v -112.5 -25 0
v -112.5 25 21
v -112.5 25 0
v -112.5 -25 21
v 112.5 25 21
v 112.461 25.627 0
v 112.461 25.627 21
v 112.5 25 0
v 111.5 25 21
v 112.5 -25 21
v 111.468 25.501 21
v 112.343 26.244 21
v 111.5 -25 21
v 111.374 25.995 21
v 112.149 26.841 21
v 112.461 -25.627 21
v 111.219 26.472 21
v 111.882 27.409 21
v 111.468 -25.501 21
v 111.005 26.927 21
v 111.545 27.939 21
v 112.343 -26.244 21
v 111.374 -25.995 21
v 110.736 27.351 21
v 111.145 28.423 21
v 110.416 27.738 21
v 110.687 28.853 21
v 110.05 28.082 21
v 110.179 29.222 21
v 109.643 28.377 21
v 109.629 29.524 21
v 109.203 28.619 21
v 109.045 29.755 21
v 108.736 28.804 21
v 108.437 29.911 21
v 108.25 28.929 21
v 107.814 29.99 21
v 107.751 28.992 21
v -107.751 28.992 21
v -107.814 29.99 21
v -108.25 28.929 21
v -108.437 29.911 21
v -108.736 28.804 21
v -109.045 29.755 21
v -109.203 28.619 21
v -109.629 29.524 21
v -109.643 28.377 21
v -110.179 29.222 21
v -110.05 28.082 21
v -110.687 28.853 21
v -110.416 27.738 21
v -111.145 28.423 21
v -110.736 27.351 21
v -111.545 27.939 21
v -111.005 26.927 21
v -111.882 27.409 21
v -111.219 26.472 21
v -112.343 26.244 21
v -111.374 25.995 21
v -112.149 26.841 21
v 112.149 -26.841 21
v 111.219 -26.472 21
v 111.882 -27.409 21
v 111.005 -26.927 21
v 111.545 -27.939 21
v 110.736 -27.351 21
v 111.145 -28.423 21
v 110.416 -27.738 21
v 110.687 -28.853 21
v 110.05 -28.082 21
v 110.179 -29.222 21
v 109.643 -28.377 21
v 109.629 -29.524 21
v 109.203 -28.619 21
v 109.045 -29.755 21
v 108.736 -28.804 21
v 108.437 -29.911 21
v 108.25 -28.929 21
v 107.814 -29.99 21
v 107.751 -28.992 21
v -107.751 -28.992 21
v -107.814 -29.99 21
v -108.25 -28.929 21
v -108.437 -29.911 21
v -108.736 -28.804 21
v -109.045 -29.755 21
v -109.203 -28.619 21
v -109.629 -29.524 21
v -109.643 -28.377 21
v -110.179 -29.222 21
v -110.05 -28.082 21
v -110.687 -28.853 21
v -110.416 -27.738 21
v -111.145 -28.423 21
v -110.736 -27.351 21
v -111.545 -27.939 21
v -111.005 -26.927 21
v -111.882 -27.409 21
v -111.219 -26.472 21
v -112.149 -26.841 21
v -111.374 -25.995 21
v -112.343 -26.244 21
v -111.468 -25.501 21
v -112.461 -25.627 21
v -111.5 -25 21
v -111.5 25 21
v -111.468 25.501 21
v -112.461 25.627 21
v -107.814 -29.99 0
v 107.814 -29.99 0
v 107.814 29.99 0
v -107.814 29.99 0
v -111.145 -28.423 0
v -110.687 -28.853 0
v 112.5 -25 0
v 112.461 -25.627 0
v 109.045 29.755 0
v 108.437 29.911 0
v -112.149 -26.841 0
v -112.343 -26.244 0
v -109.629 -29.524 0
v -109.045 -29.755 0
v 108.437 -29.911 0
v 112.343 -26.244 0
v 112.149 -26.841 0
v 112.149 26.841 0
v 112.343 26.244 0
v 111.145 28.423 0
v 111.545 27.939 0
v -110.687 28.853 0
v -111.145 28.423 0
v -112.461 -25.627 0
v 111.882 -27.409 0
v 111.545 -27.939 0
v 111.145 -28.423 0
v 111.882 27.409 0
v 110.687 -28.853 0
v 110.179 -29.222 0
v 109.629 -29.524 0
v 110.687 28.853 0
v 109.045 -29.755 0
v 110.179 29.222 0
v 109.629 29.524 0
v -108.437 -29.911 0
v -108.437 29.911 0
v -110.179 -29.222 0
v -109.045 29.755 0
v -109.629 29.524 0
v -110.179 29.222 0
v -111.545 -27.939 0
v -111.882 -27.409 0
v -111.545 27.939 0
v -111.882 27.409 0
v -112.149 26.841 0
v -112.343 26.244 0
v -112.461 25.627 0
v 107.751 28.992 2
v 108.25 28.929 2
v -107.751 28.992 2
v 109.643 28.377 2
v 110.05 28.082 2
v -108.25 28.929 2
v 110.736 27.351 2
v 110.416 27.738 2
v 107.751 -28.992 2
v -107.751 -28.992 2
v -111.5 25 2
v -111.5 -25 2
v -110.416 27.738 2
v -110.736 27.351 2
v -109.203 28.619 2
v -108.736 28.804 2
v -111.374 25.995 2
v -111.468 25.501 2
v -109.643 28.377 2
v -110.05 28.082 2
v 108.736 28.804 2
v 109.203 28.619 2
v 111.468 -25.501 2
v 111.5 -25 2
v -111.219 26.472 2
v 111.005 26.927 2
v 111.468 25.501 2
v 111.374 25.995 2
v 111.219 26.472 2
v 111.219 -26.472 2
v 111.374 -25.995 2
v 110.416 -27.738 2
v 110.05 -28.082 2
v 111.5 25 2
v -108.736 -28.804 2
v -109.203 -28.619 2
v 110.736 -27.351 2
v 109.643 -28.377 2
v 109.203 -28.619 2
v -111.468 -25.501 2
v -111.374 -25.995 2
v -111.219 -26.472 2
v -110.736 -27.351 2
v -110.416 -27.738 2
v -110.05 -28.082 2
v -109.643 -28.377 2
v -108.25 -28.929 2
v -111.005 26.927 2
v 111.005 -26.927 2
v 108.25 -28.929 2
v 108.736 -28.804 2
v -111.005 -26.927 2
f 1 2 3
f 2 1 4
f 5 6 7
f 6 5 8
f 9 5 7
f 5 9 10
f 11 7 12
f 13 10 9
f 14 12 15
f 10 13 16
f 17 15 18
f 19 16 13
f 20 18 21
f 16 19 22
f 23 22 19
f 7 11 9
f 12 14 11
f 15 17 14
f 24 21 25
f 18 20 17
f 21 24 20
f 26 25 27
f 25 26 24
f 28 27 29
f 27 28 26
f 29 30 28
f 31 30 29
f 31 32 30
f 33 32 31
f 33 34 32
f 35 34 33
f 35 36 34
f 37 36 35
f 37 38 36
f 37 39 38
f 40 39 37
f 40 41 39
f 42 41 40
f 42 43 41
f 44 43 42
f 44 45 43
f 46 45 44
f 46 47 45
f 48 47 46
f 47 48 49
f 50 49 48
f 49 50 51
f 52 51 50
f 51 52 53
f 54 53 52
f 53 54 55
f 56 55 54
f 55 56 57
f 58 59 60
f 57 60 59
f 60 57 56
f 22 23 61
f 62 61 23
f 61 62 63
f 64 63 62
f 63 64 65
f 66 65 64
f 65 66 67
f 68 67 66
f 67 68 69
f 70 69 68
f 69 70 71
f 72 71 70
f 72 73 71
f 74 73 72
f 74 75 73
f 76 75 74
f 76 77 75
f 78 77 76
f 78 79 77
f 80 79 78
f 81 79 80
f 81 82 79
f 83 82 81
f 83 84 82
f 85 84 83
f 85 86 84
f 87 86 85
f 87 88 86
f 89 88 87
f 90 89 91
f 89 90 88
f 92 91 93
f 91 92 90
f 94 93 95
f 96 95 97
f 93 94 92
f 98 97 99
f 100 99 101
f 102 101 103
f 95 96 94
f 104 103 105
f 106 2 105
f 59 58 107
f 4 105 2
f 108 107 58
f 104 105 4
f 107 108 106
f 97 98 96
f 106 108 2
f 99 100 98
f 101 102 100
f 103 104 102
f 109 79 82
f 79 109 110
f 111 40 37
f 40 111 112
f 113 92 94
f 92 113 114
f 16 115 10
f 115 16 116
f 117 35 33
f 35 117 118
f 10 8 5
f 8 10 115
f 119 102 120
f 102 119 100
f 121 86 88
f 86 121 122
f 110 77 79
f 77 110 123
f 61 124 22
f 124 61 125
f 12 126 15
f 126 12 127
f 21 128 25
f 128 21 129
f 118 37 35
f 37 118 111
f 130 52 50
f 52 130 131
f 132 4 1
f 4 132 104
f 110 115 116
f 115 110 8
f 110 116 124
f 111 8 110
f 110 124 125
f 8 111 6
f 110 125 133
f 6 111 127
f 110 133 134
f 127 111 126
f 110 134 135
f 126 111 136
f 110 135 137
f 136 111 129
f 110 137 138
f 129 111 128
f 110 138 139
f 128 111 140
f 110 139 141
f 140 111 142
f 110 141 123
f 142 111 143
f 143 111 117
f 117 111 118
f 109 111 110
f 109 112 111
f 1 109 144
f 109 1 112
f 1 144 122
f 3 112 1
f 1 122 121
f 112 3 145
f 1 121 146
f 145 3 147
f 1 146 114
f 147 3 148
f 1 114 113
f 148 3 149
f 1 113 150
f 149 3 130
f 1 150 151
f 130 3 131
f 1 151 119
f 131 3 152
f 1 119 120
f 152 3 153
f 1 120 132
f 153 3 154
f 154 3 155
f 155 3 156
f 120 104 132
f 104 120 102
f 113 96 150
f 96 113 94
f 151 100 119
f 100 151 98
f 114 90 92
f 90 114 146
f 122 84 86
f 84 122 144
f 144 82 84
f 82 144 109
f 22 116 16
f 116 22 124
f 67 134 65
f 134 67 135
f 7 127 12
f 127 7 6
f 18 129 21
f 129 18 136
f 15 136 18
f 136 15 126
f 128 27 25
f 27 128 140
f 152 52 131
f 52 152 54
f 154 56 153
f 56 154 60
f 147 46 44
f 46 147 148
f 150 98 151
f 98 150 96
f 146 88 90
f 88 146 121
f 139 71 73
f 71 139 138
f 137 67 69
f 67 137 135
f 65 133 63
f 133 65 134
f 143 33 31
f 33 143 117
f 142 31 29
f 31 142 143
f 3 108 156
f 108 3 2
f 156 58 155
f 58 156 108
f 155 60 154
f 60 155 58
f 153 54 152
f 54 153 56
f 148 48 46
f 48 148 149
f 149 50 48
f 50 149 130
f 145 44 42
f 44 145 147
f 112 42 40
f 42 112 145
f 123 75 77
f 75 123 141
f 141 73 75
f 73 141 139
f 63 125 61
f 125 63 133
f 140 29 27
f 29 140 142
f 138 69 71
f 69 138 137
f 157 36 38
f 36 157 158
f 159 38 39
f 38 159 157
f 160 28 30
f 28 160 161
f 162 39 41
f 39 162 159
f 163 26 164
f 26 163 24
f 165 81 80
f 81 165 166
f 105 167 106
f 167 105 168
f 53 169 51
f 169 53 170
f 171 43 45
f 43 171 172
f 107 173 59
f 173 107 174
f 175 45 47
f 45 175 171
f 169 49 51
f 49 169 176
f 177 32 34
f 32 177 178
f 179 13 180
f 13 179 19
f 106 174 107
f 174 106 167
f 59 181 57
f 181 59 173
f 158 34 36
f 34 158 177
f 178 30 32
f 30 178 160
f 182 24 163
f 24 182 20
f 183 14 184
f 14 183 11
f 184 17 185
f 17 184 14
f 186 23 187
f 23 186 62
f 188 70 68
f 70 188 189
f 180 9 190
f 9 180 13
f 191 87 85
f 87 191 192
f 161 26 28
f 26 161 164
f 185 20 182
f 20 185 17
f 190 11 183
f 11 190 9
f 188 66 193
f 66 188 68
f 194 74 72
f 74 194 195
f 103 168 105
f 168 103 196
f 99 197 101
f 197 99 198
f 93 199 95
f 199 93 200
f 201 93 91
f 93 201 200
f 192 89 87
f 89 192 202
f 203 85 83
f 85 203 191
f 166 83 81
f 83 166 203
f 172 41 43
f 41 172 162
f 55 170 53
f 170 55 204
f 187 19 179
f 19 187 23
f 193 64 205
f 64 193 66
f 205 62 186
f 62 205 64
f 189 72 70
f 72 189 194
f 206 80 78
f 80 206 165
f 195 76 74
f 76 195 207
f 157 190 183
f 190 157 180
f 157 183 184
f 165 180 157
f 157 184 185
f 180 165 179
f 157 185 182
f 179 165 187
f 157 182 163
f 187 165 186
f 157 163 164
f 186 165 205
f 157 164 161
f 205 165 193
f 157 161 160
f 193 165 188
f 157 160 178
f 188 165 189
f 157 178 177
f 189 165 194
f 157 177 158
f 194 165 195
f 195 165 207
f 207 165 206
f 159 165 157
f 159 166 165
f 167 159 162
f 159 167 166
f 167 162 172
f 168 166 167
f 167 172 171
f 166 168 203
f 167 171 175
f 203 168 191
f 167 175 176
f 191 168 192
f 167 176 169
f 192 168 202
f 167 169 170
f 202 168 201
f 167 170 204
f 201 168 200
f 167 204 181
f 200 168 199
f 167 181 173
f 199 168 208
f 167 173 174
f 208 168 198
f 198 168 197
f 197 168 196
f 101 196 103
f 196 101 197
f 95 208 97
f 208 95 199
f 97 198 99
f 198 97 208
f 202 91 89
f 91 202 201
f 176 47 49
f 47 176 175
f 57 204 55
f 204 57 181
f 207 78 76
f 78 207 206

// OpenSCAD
$fn = 50;


difference() {
	union() {
		hull() {
			translate(v = [-107.5000000000, 25.0000000000, 0]) {
				cylinder(h = 21, r = 5);
			}
			translate(v = [107.5000000000, 25.0000000000, 0]) {
				cylinder(h = 21, r = 5);
			}
			translate(v = [-107.5000000000, -25.0000000000, 0]) {
				cylinder(h = 21, r = 5);
			}
			translate(v = [107.5000000000, -25.0000000000, 0]) {
				cylinder(h = 21, r = 5);
			}
		}
	}
	union() {
		translate(v = [0, 0, 2]) {
			hull() {
				translate(v = [-107.5000000000, 25.0000000000, 0]) {
					cylinder(h = 19, r = 4);
				}
				translate(v = [107.5000000000, 25.0000000000, 0]) {
					cylinder(h = 19, r = 4);
				}
				translate(v = [-107.5000000000, -25.0000000000, 0]) {
					cylinder(h = 19, r = 4);
				}
				translate(v = [107.5000000000, -25.0000000000, 0]) {
					cylinder(h = 19, r = 4);
				}
			}
		}
	}
}
